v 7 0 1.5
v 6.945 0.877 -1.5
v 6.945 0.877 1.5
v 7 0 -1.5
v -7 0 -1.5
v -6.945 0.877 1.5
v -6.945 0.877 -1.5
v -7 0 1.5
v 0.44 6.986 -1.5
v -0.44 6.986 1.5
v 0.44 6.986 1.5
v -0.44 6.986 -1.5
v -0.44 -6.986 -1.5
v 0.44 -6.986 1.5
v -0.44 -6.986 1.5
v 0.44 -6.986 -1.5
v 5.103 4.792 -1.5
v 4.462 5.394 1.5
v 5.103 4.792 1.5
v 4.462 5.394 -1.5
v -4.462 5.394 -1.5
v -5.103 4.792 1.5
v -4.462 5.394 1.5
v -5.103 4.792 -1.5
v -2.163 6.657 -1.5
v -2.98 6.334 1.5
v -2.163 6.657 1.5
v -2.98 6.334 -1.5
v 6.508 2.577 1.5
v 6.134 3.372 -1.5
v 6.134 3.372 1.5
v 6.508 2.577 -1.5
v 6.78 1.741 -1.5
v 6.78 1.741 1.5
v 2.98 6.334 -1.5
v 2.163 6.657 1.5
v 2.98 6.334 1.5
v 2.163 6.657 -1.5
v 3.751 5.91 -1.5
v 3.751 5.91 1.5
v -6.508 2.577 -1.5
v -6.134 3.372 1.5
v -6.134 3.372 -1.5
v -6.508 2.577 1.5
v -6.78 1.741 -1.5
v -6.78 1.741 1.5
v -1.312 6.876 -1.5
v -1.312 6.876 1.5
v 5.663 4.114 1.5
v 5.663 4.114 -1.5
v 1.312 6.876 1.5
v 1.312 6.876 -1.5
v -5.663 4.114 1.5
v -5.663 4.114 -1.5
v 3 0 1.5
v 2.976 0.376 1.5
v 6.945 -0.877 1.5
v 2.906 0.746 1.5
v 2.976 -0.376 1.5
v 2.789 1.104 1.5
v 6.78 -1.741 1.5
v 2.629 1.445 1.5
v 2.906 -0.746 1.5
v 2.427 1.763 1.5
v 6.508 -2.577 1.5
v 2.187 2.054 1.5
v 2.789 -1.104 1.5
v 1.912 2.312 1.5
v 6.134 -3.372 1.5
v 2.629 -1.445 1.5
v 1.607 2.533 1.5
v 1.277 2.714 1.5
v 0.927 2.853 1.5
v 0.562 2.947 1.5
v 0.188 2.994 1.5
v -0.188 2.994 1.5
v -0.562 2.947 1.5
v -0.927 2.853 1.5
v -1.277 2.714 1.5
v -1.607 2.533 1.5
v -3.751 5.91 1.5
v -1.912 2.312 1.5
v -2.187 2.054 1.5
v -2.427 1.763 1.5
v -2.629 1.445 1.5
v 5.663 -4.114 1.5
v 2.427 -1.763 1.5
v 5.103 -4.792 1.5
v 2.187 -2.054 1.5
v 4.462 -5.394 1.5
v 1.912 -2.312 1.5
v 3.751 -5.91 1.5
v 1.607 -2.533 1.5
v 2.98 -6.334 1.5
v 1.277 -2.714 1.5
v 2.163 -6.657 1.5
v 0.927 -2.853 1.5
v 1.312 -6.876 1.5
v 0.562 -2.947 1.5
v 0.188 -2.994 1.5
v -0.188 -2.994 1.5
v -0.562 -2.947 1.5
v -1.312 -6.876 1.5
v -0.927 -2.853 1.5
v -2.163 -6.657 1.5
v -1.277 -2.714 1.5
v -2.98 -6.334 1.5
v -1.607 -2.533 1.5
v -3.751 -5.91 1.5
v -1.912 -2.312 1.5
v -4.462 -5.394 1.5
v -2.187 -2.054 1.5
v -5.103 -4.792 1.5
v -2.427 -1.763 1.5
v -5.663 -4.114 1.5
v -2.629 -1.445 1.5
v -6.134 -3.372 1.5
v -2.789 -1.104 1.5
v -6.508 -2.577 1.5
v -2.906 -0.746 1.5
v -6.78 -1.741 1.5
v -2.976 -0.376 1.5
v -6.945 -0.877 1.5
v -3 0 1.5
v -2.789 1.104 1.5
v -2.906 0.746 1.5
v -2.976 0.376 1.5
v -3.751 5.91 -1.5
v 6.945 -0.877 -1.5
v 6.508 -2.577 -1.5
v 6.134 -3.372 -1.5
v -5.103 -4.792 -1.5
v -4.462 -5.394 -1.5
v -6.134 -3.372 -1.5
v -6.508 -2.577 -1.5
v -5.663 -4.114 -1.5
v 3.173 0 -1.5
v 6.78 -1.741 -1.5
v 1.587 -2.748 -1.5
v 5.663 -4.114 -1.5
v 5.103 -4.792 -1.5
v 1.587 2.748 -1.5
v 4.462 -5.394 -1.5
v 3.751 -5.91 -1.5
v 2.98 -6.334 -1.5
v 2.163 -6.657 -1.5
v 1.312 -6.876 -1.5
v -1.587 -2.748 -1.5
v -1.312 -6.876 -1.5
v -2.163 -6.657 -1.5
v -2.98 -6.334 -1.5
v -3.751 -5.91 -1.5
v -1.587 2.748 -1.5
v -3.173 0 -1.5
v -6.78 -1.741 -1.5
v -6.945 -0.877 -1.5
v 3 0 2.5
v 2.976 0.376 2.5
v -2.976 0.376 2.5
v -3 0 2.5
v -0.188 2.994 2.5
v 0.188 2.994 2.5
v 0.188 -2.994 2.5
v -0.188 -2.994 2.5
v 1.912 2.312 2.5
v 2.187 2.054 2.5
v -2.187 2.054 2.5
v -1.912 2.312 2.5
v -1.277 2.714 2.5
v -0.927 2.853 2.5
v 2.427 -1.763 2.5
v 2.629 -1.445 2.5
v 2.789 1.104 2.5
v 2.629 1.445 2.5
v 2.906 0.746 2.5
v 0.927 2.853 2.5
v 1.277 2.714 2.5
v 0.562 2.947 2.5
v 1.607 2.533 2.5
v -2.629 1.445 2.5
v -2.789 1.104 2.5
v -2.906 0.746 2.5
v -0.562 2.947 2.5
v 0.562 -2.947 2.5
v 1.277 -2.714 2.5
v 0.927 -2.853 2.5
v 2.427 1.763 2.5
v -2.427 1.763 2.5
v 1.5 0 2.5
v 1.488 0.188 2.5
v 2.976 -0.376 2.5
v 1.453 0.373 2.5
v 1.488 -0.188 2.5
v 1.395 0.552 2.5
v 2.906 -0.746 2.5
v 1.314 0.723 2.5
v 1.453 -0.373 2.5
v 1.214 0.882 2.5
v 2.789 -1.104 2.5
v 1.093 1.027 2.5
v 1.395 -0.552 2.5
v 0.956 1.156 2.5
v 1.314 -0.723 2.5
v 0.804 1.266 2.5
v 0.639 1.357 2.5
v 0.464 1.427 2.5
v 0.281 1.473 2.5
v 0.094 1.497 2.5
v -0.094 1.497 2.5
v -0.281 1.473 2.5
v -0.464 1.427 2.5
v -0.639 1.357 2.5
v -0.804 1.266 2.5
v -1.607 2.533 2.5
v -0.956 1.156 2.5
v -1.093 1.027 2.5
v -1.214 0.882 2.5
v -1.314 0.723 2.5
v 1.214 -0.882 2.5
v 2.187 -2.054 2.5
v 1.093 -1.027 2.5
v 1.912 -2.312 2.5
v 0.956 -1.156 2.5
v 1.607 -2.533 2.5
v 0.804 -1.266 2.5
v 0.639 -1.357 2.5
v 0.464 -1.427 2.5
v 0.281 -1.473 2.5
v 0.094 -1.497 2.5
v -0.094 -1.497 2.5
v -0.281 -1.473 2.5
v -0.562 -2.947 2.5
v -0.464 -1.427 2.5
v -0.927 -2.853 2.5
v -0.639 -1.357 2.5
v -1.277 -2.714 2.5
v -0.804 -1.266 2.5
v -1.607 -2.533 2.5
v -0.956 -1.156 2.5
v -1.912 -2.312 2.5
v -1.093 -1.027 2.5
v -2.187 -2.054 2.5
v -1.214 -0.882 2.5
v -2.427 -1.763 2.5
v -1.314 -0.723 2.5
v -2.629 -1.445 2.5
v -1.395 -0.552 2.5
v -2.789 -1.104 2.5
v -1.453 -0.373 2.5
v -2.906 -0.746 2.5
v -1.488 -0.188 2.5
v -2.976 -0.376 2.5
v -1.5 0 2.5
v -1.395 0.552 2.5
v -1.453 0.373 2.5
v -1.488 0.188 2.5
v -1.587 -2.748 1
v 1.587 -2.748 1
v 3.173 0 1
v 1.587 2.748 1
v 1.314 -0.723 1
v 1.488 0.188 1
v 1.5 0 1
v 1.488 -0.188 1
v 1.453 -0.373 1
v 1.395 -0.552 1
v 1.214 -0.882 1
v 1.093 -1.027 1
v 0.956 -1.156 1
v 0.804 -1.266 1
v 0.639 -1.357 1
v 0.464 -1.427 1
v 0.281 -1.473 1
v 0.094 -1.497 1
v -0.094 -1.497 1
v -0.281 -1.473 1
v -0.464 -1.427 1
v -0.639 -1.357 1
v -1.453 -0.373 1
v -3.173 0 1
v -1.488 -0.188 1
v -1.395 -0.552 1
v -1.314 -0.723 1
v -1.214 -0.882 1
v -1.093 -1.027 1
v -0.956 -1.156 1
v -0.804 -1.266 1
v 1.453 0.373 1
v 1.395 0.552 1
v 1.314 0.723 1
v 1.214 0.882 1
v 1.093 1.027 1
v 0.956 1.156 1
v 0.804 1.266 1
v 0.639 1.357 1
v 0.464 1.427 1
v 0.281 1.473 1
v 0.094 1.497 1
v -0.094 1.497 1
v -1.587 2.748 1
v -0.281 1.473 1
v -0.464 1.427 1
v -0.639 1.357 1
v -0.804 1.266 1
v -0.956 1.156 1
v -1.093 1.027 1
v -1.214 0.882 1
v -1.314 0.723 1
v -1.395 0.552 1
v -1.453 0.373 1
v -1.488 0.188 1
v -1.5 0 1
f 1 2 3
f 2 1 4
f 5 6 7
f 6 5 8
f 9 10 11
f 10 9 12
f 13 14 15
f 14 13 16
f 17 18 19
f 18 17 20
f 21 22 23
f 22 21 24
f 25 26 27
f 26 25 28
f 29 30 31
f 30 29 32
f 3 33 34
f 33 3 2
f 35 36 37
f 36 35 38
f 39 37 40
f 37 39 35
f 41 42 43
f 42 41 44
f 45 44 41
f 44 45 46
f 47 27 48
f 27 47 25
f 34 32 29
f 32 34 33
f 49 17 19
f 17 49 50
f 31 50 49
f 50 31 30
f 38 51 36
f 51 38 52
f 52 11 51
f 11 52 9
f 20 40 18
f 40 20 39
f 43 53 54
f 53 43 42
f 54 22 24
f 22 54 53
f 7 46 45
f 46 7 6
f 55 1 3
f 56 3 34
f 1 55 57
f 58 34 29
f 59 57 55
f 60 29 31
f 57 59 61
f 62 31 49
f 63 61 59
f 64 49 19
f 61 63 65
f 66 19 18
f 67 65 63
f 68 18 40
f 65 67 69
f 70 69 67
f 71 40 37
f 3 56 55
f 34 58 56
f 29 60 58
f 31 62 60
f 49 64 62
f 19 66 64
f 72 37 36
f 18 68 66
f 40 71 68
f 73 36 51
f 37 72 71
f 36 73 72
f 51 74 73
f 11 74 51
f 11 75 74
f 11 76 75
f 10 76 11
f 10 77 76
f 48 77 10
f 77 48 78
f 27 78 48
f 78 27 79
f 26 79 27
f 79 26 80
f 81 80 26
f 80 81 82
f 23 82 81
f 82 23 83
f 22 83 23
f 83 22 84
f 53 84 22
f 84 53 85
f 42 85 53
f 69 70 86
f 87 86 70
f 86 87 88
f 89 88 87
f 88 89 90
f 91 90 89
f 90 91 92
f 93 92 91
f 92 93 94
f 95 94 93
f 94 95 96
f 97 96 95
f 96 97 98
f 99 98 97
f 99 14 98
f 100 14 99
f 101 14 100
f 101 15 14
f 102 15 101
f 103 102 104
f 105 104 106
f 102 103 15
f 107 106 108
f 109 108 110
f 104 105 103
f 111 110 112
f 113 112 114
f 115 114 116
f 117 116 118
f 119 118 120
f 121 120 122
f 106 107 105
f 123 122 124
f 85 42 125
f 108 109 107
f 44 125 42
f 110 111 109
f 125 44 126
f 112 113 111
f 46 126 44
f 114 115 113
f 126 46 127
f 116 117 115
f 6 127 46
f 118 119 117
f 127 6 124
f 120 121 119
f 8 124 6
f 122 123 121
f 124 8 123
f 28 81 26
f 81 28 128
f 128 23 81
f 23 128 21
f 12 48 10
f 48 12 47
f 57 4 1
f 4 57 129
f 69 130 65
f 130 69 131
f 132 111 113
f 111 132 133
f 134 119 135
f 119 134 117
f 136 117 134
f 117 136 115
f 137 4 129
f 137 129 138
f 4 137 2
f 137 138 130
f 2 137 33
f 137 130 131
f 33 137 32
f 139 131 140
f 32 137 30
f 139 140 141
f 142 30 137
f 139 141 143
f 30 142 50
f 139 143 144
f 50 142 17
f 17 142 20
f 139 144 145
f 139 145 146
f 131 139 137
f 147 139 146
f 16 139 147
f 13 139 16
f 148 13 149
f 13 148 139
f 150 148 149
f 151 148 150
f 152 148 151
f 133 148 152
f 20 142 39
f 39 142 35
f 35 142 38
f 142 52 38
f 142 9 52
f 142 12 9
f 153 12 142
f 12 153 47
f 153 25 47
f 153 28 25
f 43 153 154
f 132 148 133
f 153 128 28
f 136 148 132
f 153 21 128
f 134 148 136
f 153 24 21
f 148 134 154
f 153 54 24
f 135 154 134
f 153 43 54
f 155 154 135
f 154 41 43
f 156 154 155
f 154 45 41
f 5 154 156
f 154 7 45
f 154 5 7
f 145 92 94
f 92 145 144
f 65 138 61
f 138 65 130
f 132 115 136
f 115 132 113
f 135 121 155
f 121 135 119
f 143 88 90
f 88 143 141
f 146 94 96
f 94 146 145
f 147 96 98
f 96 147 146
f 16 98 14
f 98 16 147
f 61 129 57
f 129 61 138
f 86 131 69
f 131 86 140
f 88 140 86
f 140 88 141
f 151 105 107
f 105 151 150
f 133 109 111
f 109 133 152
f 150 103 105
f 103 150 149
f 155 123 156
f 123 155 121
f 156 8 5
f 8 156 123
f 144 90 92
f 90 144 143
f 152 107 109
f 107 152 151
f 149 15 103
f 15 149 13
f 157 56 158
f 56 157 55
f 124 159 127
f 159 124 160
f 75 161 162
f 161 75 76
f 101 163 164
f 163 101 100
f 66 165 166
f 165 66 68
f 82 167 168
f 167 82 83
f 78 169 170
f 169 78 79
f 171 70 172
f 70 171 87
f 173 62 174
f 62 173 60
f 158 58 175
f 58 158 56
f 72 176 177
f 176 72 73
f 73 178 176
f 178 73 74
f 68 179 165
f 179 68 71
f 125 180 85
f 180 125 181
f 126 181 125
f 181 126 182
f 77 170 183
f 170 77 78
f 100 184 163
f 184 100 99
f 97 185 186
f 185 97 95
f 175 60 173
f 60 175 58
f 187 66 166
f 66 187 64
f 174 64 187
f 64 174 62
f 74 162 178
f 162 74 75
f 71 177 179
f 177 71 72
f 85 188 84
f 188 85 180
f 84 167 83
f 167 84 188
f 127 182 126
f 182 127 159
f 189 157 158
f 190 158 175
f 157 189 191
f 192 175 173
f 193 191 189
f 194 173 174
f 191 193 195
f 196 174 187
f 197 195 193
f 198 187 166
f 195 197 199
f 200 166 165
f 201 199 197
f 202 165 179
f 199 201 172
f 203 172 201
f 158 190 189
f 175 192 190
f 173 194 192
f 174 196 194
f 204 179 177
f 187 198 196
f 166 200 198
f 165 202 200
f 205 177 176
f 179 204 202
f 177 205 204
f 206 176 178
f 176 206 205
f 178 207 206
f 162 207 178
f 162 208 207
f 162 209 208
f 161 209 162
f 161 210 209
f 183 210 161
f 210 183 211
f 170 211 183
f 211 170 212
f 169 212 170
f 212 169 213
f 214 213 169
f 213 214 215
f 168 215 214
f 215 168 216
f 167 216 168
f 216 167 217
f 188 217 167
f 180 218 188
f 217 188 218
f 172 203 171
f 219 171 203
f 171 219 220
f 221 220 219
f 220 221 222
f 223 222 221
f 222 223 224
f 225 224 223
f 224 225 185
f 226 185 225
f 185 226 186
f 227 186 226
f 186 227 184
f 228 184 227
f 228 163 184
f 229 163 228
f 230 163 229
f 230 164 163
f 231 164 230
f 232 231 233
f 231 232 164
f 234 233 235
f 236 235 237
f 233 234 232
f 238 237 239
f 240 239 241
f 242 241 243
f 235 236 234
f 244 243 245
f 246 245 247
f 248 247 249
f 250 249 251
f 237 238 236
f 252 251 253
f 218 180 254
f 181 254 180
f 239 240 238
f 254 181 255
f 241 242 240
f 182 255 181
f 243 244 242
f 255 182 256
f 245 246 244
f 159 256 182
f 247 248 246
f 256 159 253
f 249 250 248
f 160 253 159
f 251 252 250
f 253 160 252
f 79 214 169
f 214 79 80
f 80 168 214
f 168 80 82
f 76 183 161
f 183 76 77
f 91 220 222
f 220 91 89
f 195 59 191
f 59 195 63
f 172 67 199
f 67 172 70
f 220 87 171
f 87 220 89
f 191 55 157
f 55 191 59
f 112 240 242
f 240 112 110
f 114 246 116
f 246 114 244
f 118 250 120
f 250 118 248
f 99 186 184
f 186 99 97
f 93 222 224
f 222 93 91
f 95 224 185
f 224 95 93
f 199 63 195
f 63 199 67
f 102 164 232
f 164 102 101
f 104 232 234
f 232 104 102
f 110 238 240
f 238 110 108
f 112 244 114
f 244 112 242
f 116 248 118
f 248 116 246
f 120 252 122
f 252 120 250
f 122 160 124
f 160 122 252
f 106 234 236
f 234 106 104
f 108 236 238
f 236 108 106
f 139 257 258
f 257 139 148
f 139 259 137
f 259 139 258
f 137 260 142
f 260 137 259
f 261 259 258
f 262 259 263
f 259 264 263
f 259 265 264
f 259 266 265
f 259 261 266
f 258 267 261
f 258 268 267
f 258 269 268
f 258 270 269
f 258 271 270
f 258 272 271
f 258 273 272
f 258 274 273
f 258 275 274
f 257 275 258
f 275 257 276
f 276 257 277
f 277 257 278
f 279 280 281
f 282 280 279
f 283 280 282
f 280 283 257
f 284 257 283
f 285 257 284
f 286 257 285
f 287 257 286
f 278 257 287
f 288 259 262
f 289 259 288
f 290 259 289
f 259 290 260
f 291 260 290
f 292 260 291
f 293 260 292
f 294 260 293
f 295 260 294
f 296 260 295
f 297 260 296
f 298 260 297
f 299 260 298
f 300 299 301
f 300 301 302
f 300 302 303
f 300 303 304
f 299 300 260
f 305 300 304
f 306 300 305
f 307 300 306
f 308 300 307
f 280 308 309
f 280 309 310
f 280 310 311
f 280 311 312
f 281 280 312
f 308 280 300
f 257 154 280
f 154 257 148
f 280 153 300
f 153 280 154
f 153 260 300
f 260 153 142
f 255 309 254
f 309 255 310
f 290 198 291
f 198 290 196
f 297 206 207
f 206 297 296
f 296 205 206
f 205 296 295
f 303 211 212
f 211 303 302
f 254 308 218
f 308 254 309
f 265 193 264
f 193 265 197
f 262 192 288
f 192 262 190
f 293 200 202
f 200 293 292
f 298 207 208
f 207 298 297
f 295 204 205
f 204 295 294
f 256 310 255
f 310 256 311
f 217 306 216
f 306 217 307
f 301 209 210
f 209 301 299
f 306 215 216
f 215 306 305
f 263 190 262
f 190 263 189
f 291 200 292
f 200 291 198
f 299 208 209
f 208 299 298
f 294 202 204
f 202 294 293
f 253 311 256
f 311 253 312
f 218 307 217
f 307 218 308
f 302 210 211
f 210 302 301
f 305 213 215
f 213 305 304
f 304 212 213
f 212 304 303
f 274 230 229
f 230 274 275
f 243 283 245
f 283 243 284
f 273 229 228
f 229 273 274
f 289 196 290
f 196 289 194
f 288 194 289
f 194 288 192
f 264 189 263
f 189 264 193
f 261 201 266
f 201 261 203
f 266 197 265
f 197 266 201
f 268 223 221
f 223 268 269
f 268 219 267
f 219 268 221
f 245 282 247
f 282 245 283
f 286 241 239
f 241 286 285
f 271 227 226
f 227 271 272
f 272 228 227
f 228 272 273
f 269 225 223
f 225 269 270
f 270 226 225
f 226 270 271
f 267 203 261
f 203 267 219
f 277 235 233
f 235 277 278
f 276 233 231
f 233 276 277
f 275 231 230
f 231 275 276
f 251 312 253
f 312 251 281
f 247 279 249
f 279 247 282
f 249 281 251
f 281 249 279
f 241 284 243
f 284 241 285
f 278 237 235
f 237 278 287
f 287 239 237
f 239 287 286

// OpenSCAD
$fn = 50;


difference() {
	union() {
		translate(v = [0, 0, -1.5000000000]) {
			cylinder(h = 3, r = 7.0000000000);
		}
		translate(v = [0, 0, -1.5000000000]) {
			cylinder(h = 4, r = 3.0000000000);
		}
	}
	union() {
		translate(v = [0, 0, -1.5000000000]) {
			rotate(a = [0, 0, 0]) {
				difference() {
					union() {
						linear_extrude(height = 2.5000000000) {
							polygon(points = [[3.1735000000, 0.0000000000], [1.5867500000, 2.7483316189], [-1.5867500000, 2.7483316189], [-3.1735000000, 0.0000000000], [-1.5867500000, -2.7483316189], [1.5867500000, -2.7483316189]]);
						}
					}
					union();
				}
			}
		}
		translate(v = [0, 0, -50.0000000000]) {
			cylinder(h = 100, r = 1.5000000000);
		}
	}
}
